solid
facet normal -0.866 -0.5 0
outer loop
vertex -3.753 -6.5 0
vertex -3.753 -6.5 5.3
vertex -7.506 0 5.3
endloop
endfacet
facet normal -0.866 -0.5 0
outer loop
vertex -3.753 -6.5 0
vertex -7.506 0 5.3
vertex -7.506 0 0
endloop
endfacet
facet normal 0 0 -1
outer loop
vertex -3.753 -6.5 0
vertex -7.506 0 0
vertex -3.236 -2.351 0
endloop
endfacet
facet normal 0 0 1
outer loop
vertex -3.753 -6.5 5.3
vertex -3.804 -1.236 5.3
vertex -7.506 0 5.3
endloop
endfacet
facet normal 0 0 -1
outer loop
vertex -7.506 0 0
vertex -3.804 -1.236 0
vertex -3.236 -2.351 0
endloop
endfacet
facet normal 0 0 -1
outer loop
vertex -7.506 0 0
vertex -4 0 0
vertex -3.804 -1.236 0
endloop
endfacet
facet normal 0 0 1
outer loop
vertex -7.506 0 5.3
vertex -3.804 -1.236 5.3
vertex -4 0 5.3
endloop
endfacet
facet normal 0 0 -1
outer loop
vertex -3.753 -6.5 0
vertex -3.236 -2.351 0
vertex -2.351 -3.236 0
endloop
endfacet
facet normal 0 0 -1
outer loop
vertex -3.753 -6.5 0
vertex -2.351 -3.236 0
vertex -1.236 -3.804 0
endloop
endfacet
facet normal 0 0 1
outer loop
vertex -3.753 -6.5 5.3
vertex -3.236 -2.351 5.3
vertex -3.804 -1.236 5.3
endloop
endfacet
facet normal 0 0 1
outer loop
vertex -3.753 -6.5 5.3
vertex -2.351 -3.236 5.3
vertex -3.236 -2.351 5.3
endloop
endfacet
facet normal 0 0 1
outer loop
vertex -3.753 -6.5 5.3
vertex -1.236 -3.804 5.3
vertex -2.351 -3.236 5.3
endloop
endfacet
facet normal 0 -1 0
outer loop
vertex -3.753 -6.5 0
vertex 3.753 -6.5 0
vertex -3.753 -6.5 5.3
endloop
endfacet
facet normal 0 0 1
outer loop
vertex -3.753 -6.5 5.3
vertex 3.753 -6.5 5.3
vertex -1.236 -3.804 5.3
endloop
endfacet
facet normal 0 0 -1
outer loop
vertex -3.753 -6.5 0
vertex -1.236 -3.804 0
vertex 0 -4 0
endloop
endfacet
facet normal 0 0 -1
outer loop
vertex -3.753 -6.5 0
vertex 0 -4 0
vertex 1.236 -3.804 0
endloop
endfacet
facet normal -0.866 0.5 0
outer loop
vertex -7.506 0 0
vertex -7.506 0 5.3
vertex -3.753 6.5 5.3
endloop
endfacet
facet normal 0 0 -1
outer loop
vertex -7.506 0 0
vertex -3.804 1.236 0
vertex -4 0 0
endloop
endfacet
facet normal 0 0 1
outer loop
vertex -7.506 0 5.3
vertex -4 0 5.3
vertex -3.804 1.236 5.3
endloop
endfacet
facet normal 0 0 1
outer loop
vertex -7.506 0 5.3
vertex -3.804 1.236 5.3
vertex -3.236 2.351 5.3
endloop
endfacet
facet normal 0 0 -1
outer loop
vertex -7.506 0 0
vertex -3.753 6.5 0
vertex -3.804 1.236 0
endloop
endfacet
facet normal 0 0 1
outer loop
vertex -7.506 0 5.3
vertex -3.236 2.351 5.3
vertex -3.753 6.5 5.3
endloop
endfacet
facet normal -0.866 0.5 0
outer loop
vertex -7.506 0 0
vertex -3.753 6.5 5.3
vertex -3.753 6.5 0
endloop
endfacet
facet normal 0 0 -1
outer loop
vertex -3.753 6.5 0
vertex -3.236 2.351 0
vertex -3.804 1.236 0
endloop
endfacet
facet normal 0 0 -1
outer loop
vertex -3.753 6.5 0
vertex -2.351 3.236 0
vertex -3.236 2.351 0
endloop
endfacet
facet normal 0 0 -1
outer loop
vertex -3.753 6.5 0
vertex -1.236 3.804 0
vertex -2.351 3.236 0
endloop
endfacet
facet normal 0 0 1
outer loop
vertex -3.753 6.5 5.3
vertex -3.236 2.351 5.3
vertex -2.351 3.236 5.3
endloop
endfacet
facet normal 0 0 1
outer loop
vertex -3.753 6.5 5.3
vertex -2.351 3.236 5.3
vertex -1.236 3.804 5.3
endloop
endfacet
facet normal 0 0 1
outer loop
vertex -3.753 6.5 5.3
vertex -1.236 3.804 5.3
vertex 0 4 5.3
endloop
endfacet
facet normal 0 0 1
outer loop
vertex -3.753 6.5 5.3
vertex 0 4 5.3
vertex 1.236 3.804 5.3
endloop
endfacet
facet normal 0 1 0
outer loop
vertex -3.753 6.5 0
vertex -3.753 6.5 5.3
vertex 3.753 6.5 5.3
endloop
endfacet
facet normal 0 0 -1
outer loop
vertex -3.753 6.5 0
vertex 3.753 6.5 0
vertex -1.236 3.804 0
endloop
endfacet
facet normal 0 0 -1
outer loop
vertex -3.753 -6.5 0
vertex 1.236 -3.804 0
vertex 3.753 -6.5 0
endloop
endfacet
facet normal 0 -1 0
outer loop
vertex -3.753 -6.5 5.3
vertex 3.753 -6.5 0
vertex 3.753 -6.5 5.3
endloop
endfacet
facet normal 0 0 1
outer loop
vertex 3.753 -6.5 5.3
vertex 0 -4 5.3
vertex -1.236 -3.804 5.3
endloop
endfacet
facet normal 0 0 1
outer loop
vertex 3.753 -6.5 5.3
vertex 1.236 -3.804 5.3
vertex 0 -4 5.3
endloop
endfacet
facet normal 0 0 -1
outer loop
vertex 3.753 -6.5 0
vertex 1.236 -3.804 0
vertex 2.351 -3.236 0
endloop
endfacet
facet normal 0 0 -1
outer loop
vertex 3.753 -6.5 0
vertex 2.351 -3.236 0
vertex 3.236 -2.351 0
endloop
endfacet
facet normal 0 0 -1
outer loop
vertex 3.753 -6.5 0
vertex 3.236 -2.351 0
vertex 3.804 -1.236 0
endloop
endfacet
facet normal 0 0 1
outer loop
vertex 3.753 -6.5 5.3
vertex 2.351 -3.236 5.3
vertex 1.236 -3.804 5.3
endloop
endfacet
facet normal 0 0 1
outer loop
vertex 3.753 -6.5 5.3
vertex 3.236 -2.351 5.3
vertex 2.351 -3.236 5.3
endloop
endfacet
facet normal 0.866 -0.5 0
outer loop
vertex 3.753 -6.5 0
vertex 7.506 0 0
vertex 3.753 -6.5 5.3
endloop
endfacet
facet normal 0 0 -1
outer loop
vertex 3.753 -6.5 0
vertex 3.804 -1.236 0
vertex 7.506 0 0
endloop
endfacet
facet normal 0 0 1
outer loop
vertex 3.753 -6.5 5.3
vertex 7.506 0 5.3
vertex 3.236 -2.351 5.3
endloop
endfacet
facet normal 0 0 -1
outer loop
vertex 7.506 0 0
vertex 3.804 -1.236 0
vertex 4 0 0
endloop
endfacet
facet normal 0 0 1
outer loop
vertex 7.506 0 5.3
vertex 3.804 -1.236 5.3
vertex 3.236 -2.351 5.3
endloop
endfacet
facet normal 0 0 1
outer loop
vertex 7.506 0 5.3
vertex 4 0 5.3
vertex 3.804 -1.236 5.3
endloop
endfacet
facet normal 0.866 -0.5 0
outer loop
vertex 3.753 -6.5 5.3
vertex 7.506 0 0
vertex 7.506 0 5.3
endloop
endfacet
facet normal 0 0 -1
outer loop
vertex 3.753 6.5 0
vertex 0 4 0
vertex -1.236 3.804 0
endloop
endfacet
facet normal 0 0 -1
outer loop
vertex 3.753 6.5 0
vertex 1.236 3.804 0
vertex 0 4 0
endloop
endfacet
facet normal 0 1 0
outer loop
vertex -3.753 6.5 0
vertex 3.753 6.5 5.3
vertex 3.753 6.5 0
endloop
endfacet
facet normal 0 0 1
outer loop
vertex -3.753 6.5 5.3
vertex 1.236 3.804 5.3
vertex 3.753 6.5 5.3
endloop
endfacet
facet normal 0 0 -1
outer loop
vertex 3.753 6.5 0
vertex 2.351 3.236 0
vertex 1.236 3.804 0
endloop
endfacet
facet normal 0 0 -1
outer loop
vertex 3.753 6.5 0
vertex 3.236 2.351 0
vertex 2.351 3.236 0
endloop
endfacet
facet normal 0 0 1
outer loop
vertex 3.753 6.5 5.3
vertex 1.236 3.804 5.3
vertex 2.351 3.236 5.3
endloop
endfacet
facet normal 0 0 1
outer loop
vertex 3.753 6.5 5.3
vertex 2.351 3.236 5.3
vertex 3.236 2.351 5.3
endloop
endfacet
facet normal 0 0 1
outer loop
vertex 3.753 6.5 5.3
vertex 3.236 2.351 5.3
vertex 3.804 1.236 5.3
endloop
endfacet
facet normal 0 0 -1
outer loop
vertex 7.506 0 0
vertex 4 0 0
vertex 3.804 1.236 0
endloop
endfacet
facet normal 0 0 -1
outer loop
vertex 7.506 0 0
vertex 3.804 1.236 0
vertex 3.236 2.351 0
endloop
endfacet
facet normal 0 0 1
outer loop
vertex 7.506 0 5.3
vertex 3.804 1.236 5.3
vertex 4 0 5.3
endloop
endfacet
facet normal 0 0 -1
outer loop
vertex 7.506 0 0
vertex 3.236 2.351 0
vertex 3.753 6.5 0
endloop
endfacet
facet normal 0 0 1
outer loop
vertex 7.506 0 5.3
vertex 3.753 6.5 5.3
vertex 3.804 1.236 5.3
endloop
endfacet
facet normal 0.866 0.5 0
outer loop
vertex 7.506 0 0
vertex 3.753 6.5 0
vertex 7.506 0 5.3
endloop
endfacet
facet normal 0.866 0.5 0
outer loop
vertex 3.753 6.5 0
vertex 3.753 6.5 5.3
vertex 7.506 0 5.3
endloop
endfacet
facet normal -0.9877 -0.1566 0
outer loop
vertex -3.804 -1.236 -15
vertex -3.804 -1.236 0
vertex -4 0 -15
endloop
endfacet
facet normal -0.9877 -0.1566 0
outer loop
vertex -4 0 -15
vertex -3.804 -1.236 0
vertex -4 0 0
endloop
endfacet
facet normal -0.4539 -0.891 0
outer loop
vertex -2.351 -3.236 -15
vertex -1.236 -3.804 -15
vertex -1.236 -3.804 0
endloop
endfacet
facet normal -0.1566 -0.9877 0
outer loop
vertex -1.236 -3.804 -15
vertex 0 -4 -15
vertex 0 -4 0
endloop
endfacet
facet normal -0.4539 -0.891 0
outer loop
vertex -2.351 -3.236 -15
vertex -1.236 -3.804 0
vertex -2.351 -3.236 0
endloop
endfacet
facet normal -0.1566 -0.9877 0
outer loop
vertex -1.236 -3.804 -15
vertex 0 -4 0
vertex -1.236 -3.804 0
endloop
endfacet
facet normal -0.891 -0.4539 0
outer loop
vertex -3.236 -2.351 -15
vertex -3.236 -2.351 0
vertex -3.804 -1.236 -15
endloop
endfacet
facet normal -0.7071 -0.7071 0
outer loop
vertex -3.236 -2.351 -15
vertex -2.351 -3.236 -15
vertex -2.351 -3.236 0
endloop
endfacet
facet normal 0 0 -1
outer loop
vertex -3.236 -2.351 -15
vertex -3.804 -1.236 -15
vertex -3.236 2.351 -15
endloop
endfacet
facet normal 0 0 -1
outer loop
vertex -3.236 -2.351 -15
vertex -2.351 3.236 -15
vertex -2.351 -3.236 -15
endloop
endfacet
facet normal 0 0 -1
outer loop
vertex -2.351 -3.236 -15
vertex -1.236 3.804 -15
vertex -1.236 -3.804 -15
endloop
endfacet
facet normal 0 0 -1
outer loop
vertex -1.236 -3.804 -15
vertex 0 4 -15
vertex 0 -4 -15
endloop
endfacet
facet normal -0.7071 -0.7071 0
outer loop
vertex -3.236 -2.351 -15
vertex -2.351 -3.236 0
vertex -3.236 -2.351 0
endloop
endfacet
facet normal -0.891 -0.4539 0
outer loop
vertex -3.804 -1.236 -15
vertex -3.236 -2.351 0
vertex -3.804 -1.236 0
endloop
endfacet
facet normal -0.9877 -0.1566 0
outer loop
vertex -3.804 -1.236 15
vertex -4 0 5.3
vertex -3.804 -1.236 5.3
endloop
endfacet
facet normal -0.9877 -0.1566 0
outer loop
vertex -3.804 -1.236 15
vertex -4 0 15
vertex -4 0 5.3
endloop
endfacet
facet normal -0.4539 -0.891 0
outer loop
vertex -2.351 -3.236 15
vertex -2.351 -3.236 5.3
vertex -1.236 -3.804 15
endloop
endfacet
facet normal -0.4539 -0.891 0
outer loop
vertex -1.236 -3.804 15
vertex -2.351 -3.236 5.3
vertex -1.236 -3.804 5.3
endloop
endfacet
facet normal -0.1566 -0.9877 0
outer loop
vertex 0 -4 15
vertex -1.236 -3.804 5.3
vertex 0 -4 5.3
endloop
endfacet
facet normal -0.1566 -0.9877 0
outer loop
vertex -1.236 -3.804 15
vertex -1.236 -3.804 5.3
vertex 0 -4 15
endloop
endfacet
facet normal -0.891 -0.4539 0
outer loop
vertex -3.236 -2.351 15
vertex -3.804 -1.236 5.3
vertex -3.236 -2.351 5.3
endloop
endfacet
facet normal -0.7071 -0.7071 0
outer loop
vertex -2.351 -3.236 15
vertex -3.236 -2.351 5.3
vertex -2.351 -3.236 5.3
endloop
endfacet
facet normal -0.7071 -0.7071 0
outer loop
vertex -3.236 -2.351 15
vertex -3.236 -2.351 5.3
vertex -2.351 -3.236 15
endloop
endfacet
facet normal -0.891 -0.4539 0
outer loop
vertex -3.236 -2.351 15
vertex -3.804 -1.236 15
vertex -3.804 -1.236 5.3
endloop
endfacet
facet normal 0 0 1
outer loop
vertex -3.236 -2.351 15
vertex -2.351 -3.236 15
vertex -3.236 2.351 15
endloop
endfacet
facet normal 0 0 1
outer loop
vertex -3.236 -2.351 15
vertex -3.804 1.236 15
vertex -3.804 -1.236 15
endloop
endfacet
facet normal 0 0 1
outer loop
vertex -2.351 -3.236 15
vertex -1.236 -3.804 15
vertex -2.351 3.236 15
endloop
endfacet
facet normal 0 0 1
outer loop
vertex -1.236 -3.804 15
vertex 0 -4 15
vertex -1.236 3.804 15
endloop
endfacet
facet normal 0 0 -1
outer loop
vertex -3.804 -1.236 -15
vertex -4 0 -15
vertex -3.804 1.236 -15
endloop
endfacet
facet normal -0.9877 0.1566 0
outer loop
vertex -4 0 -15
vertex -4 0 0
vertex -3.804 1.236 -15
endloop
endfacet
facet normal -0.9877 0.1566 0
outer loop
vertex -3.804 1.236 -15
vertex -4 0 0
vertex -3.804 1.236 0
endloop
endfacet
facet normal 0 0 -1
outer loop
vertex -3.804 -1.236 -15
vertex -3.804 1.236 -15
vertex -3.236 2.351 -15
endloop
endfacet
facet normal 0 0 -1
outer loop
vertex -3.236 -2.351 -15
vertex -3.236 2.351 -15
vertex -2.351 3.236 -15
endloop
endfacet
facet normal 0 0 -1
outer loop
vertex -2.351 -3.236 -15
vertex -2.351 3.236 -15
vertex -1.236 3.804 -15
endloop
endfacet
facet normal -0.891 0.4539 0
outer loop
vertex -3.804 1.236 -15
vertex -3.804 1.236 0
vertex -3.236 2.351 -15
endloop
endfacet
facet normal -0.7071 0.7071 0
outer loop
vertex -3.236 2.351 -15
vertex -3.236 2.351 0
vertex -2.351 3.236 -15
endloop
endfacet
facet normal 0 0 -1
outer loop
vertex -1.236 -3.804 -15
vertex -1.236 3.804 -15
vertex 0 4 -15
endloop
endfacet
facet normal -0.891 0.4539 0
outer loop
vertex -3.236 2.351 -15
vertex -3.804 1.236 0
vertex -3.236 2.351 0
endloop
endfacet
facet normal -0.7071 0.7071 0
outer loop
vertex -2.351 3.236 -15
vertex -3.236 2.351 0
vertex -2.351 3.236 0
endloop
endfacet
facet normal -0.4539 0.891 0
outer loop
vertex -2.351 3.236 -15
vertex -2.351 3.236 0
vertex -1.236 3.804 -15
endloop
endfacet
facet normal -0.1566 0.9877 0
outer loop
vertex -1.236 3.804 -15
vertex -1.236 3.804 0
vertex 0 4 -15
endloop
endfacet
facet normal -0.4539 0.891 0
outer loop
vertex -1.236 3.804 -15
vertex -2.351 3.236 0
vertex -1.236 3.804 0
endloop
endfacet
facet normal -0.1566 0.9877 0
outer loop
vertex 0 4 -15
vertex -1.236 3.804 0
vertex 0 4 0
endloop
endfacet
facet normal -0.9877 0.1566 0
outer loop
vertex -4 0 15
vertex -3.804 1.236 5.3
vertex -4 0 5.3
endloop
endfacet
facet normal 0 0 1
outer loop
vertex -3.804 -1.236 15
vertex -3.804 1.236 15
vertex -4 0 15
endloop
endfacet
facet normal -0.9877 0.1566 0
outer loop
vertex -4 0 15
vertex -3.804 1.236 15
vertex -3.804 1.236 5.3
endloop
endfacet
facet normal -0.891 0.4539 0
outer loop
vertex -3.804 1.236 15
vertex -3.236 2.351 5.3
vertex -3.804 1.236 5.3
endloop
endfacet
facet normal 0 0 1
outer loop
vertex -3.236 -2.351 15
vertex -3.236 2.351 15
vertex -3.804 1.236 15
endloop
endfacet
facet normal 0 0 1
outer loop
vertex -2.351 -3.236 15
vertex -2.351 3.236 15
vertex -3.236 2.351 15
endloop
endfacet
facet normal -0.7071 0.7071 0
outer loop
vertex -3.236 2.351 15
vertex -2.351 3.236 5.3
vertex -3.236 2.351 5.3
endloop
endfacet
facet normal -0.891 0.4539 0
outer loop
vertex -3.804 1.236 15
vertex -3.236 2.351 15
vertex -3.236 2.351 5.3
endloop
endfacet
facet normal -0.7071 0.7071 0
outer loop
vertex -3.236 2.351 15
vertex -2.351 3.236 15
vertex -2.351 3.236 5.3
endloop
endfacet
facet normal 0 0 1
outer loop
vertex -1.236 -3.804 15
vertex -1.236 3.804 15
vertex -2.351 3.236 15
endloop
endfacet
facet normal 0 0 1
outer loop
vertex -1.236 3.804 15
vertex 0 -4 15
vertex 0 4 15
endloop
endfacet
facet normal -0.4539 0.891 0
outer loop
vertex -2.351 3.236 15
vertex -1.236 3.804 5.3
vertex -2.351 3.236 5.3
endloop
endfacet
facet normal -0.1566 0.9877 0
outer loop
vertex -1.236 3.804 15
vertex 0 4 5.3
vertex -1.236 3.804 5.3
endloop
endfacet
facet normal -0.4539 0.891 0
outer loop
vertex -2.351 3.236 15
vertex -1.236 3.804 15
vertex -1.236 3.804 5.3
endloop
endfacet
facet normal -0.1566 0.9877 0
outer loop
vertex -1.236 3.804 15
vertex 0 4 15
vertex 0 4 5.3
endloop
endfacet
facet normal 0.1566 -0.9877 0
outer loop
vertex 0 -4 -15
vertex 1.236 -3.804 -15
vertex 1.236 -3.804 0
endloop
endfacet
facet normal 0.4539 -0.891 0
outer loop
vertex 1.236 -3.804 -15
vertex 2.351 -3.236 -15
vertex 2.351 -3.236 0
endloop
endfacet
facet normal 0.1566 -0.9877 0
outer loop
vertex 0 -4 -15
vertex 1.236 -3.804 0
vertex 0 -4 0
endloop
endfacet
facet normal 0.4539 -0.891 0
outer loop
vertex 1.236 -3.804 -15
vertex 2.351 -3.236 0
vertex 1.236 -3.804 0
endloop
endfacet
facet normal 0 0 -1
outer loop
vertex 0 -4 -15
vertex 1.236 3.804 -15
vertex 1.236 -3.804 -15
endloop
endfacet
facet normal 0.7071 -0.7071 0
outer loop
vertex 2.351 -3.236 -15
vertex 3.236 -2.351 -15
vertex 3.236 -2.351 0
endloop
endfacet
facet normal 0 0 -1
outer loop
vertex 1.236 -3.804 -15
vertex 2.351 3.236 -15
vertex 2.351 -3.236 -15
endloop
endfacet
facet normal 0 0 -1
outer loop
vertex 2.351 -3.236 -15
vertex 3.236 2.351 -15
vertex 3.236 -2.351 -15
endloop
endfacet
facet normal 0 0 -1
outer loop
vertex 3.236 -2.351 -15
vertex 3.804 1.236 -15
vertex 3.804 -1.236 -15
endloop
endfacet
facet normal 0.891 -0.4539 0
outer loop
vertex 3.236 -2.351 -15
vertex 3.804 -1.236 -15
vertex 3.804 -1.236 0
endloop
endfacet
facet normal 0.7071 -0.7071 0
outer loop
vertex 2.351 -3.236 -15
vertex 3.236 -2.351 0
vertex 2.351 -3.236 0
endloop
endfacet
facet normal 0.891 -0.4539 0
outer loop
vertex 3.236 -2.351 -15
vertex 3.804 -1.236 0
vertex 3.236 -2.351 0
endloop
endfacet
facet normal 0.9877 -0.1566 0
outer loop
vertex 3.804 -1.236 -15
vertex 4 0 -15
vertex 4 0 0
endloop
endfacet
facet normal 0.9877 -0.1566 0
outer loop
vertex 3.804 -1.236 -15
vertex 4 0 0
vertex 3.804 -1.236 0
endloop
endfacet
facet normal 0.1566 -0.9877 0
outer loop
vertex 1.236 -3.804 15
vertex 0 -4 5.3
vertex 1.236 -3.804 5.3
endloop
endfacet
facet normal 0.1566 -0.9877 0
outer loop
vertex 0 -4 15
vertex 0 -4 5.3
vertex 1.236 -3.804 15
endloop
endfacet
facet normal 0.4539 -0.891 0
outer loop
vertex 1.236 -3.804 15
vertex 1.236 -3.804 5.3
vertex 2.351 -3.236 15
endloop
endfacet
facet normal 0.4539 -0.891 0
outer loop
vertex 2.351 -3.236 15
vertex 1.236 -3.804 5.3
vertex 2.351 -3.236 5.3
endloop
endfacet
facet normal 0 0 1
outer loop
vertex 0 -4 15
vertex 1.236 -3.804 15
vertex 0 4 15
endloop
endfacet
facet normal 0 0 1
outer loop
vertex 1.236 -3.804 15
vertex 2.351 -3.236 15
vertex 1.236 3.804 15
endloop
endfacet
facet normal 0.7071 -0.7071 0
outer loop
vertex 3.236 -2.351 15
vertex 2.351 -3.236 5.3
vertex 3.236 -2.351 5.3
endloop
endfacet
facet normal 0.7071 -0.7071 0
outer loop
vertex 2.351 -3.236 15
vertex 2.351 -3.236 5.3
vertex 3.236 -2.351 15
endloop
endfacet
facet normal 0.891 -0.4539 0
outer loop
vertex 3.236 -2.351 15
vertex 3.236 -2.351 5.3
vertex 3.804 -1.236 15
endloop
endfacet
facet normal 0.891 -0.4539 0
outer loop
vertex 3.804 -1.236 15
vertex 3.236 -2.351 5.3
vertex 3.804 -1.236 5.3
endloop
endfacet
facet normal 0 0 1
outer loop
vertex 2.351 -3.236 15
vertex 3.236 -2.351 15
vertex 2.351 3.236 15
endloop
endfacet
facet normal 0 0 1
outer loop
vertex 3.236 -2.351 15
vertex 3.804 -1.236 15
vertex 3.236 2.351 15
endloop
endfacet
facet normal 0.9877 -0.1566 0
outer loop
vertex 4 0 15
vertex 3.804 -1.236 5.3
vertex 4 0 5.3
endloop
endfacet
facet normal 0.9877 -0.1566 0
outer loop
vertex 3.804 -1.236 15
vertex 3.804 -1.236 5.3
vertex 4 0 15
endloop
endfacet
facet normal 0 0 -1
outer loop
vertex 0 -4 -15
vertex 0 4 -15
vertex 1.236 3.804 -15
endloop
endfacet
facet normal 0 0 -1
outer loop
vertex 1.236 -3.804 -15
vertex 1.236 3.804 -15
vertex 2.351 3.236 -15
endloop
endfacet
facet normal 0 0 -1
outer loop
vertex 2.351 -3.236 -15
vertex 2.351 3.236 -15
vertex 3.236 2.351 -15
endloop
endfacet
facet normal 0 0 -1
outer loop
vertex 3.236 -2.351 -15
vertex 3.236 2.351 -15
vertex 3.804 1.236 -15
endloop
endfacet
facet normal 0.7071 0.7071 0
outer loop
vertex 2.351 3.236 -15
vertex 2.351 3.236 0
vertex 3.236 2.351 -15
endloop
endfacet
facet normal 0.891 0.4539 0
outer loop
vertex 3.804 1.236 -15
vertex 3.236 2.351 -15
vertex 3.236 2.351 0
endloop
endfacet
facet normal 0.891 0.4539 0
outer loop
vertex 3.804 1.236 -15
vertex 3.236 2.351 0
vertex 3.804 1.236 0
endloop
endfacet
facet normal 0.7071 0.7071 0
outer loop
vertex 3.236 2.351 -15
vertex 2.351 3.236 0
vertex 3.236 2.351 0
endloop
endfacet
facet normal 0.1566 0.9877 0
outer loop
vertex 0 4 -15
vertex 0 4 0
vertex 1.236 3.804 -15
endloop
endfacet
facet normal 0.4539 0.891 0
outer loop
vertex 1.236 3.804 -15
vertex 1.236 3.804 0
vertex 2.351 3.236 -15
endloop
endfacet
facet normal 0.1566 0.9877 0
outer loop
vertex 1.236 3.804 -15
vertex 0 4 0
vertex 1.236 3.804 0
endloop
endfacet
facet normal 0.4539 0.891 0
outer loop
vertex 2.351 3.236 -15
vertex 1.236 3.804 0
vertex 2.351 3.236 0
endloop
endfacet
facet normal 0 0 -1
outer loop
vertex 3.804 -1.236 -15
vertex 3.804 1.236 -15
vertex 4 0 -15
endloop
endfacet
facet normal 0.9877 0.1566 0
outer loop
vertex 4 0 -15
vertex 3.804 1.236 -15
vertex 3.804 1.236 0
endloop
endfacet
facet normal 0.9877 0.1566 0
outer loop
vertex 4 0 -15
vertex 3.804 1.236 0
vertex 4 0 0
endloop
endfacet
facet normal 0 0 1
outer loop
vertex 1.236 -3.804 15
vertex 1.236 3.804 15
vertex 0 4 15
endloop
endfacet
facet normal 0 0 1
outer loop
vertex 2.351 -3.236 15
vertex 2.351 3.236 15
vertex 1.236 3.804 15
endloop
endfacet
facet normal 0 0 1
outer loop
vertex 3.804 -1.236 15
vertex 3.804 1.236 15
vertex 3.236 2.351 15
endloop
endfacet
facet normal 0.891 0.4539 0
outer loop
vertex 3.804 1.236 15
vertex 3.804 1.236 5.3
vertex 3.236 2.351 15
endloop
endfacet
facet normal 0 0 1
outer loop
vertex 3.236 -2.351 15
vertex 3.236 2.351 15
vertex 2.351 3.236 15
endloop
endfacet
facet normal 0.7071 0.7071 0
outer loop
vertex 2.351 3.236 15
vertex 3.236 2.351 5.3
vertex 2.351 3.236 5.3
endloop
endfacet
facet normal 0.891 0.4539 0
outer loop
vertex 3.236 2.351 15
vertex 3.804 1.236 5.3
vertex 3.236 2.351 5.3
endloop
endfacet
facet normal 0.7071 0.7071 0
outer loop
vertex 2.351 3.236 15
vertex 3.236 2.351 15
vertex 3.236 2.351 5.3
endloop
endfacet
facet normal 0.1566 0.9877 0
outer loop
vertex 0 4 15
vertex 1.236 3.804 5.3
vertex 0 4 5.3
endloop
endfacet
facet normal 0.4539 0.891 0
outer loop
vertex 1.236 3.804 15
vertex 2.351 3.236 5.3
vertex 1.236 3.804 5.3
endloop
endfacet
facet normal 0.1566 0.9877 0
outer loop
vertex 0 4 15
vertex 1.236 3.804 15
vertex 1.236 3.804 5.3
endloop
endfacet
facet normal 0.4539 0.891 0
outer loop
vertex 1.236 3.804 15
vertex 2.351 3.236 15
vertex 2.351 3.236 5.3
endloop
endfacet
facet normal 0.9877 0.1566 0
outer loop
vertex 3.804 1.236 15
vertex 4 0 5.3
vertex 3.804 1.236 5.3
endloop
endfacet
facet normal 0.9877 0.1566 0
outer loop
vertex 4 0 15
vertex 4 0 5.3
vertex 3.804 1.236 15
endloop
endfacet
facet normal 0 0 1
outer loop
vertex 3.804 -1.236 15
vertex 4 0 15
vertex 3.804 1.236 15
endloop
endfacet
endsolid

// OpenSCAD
r = 13 / sqrt(3);
head_height = 5.3;
shaft_radius = 4; // diameter 8mm
shaft_length = 30;

union() {
    linear_extrude(height=head_height, $fn=6)
        polygon(points=[
            [r, 0],
            [r * cos(60), r * sin(60)],
            [-r * cos(60), r * sin(60)],
            [-r, 0],
            [-r * cos(60), -r * sin(60)],
            [r * cos(60), -r * sin(60)]
        ]);
    translate([0, 0, -15])
        cylinder(r=shaft_radius, h=shaft_length, $fn=20);
}
